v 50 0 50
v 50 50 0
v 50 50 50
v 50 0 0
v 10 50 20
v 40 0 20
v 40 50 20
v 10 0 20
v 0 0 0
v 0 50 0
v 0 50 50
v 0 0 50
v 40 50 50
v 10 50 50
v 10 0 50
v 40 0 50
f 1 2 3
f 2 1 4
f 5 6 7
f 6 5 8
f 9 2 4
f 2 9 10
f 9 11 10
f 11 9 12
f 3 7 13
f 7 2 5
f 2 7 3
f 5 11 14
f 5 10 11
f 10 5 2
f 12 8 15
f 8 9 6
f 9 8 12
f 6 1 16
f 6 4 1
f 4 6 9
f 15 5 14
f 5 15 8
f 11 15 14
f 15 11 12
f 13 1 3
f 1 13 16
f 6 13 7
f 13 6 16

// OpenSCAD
// Dimensions
base_length = 50;  // Length of the base block
base_width = 50;   // Width of the base block
base_height = 20;  // Height of the base block

cutout_length = 30;  // Length of the central cutout
cutout_width = 20;   // Width of the central cutout
cutout_height = 20;  // Height of the central cutout

arm_width = 10;      // Width of the side arms
arm_height = 30;     // Height of the side arms

// Base block
module base_block() {
    cube([base_length, base_width, base_height]);
}

// Central cutout
module central_cutout() {
    translate([(base_length - cutout_length) / 2, (base_width - cutout_width) / 2, 0])
        cube([cutout_length, cutout_width, cutout_height]);
}

// Side arms
module side_arm() {
    cube([arm_width, base_width, arm_height]);
}

// Full model
module flexible_coupling() {
    // Layer 1: Base block
    base_block();

    // Layer 2: Central cutout
    difference() {
        base_block();
        central_cutout();
    }

    // Layer 3: Side arms
    translate([0, 0, base_height])
        side_arm();
    translate([base_length - arm_width, 0, base_height])
        side_arm();
}

// Render the model
flexible_coupling();
